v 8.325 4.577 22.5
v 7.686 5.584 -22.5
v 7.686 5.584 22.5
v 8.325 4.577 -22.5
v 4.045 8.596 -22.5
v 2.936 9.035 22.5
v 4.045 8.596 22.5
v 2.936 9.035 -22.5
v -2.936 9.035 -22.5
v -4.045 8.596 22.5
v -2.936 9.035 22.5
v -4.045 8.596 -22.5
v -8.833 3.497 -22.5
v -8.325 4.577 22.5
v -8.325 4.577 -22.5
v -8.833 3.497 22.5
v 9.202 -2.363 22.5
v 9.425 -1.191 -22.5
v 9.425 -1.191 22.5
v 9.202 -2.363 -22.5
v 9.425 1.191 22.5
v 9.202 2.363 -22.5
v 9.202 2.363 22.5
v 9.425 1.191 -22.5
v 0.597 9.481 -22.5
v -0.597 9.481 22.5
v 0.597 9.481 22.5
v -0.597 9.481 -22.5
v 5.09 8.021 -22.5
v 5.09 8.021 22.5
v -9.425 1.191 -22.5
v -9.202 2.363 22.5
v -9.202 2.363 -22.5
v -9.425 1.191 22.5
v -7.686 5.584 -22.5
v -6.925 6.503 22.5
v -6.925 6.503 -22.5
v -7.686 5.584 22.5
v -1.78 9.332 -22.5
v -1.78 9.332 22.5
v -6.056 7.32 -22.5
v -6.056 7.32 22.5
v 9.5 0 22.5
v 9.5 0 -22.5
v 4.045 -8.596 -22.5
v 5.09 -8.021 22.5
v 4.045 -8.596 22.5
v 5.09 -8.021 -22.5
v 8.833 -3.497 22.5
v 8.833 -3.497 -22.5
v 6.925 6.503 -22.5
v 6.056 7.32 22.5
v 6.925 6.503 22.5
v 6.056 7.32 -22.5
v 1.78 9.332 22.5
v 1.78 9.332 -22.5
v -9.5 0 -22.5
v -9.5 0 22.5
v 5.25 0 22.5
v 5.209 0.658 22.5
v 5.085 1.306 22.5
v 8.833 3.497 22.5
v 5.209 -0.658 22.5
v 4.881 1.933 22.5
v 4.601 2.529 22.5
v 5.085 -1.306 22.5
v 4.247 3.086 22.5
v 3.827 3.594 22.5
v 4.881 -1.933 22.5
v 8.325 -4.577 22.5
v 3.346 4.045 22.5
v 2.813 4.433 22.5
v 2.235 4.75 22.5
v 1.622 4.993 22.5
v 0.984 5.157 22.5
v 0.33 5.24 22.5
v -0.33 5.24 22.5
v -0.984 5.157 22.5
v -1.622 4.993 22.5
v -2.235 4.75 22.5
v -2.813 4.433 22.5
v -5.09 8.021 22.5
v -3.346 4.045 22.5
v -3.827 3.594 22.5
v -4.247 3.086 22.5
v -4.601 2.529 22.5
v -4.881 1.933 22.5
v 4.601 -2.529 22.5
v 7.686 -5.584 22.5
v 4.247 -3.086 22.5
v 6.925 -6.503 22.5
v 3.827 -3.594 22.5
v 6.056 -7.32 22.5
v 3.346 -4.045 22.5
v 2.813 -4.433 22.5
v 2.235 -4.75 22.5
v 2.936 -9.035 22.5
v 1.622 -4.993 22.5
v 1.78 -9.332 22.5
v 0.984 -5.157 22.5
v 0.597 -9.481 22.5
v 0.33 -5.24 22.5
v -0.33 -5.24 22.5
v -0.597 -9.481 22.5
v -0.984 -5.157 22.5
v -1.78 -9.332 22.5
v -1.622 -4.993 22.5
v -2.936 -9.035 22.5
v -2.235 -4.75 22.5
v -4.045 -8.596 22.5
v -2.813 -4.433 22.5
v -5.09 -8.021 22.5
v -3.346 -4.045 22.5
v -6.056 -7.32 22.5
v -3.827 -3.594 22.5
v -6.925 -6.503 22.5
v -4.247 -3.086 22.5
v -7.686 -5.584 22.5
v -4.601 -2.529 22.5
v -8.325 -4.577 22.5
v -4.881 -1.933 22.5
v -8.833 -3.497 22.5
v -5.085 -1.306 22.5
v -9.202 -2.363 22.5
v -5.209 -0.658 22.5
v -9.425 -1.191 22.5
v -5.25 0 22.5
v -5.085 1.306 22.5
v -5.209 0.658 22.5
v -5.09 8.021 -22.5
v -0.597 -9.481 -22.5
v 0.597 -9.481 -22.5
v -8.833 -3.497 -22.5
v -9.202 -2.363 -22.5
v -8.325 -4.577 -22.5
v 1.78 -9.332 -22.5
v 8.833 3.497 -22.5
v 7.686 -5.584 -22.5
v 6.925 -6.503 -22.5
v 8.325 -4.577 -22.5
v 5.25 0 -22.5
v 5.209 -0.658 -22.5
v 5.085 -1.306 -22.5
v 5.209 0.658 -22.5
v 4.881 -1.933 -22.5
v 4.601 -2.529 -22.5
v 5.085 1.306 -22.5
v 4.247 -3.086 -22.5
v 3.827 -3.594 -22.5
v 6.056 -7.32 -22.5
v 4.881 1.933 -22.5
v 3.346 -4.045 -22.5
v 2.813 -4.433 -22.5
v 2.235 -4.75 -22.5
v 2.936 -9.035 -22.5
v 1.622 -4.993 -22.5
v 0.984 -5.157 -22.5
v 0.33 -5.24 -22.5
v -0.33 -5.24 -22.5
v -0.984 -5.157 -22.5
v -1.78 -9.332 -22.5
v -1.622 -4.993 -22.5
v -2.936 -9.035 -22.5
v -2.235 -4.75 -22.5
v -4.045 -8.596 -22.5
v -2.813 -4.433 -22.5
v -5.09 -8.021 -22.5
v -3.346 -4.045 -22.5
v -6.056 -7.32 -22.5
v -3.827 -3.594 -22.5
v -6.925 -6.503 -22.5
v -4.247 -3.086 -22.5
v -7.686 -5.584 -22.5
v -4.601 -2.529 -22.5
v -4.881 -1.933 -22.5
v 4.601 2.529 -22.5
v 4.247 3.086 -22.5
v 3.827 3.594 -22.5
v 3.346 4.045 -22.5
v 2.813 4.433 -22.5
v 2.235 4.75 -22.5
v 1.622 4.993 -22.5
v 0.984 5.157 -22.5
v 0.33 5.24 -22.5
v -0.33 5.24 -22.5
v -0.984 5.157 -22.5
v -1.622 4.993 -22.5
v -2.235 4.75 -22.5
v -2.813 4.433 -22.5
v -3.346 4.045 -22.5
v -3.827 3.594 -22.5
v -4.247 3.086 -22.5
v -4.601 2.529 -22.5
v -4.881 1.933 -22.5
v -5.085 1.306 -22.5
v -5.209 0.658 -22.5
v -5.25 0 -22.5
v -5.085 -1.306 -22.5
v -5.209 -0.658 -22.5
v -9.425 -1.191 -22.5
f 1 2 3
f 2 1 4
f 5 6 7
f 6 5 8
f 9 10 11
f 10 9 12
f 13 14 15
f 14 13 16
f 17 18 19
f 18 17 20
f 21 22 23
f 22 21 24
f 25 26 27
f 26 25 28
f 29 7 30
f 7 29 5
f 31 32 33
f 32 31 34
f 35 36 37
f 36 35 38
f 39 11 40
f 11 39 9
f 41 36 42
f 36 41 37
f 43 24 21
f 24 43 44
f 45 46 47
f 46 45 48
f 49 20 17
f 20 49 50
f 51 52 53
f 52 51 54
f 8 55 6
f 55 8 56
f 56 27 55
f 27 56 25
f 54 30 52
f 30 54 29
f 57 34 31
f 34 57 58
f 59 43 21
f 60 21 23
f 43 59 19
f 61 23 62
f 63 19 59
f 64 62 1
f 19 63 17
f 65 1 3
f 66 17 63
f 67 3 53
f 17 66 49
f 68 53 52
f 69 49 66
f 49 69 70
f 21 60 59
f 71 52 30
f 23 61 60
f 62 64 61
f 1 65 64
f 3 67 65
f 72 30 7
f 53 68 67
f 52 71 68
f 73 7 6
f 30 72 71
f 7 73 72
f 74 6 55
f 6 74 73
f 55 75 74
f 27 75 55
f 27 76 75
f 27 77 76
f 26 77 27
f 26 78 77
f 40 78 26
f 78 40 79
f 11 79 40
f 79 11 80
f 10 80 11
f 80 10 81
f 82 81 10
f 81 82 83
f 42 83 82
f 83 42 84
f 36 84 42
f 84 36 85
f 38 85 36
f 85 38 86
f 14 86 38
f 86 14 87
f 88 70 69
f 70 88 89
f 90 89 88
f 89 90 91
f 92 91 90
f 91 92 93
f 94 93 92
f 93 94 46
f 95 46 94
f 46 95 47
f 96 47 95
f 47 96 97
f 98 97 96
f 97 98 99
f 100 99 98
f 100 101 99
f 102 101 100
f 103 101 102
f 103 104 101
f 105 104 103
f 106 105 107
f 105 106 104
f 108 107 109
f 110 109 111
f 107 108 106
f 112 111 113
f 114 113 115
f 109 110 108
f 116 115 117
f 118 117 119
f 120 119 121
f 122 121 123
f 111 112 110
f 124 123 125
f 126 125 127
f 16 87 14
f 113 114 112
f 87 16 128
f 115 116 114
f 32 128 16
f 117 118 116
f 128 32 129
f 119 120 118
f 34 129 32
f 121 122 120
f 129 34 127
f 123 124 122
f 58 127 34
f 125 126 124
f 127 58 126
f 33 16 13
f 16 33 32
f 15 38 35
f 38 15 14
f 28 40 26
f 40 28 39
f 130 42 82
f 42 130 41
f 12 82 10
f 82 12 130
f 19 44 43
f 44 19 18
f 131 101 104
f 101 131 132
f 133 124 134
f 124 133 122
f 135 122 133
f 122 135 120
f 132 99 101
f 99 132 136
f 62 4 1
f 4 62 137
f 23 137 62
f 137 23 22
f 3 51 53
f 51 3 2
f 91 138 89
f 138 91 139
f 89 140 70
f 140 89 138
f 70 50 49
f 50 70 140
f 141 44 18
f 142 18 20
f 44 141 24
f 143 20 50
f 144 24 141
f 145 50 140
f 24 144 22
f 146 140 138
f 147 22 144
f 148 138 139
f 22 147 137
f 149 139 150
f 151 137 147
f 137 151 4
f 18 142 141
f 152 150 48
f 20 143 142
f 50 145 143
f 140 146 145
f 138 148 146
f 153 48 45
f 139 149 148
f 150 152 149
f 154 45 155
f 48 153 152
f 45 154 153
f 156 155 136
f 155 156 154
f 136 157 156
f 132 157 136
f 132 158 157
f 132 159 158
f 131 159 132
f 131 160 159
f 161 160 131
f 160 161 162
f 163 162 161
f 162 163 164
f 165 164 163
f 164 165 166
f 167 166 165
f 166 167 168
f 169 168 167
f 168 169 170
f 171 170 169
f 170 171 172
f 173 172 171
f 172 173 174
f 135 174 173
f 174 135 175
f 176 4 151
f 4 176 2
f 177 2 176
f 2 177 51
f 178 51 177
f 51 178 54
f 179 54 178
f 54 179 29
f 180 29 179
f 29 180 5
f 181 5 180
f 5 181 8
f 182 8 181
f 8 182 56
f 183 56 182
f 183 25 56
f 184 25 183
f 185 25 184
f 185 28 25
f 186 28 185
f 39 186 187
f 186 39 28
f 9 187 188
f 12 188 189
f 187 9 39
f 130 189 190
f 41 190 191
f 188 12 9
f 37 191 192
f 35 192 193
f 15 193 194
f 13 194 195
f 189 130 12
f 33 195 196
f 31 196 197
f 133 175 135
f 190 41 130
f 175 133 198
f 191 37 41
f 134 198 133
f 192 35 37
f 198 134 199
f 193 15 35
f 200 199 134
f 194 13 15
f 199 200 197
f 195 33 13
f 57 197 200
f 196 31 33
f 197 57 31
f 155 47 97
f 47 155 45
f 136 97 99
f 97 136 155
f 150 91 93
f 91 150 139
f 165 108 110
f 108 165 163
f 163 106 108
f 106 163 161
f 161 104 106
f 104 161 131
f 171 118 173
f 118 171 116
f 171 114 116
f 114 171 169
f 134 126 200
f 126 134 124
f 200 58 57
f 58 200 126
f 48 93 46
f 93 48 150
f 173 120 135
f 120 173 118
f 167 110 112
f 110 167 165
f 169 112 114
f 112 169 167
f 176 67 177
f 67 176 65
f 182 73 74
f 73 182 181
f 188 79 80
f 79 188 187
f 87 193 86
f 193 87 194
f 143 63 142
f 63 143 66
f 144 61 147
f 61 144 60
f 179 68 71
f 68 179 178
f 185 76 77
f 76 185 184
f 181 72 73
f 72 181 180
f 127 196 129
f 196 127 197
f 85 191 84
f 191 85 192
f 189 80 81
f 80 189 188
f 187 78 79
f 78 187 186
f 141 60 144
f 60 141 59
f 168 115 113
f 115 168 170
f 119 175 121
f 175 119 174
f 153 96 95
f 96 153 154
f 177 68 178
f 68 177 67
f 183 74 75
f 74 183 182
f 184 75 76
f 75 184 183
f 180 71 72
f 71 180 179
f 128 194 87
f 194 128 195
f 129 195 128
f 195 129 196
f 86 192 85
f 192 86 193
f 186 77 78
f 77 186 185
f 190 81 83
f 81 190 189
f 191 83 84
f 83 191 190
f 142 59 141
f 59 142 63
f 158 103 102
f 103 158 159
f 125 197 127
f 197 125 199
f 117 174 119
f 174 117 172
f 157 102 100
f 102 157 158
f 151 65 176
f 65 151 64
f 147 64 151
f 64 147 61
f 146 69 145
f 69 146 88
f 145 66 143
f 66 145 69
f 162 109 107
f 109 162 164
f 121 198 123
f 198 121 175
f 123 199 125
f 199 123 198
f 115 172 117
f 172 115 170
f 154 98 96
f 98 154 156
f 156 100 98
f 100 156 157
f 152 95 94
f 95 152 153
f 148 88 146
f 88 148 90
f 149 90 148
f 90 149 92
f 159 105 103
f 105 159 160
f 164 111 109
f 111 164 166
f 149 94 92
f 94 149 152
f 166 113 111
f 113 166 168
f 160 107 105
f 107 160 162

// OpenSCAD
$fn = 50;


difference() {
	union() {
		translate(v = [0, 0, -22.5000000000]) {
			cylinder(h = 45, r = 9.5000000000);
		}
	}
	union() {
		translate(v = [0, 0, -100.0000000000]) {
			cylinder(h = 200, r = 5.2500000000);
		}
	}
}
